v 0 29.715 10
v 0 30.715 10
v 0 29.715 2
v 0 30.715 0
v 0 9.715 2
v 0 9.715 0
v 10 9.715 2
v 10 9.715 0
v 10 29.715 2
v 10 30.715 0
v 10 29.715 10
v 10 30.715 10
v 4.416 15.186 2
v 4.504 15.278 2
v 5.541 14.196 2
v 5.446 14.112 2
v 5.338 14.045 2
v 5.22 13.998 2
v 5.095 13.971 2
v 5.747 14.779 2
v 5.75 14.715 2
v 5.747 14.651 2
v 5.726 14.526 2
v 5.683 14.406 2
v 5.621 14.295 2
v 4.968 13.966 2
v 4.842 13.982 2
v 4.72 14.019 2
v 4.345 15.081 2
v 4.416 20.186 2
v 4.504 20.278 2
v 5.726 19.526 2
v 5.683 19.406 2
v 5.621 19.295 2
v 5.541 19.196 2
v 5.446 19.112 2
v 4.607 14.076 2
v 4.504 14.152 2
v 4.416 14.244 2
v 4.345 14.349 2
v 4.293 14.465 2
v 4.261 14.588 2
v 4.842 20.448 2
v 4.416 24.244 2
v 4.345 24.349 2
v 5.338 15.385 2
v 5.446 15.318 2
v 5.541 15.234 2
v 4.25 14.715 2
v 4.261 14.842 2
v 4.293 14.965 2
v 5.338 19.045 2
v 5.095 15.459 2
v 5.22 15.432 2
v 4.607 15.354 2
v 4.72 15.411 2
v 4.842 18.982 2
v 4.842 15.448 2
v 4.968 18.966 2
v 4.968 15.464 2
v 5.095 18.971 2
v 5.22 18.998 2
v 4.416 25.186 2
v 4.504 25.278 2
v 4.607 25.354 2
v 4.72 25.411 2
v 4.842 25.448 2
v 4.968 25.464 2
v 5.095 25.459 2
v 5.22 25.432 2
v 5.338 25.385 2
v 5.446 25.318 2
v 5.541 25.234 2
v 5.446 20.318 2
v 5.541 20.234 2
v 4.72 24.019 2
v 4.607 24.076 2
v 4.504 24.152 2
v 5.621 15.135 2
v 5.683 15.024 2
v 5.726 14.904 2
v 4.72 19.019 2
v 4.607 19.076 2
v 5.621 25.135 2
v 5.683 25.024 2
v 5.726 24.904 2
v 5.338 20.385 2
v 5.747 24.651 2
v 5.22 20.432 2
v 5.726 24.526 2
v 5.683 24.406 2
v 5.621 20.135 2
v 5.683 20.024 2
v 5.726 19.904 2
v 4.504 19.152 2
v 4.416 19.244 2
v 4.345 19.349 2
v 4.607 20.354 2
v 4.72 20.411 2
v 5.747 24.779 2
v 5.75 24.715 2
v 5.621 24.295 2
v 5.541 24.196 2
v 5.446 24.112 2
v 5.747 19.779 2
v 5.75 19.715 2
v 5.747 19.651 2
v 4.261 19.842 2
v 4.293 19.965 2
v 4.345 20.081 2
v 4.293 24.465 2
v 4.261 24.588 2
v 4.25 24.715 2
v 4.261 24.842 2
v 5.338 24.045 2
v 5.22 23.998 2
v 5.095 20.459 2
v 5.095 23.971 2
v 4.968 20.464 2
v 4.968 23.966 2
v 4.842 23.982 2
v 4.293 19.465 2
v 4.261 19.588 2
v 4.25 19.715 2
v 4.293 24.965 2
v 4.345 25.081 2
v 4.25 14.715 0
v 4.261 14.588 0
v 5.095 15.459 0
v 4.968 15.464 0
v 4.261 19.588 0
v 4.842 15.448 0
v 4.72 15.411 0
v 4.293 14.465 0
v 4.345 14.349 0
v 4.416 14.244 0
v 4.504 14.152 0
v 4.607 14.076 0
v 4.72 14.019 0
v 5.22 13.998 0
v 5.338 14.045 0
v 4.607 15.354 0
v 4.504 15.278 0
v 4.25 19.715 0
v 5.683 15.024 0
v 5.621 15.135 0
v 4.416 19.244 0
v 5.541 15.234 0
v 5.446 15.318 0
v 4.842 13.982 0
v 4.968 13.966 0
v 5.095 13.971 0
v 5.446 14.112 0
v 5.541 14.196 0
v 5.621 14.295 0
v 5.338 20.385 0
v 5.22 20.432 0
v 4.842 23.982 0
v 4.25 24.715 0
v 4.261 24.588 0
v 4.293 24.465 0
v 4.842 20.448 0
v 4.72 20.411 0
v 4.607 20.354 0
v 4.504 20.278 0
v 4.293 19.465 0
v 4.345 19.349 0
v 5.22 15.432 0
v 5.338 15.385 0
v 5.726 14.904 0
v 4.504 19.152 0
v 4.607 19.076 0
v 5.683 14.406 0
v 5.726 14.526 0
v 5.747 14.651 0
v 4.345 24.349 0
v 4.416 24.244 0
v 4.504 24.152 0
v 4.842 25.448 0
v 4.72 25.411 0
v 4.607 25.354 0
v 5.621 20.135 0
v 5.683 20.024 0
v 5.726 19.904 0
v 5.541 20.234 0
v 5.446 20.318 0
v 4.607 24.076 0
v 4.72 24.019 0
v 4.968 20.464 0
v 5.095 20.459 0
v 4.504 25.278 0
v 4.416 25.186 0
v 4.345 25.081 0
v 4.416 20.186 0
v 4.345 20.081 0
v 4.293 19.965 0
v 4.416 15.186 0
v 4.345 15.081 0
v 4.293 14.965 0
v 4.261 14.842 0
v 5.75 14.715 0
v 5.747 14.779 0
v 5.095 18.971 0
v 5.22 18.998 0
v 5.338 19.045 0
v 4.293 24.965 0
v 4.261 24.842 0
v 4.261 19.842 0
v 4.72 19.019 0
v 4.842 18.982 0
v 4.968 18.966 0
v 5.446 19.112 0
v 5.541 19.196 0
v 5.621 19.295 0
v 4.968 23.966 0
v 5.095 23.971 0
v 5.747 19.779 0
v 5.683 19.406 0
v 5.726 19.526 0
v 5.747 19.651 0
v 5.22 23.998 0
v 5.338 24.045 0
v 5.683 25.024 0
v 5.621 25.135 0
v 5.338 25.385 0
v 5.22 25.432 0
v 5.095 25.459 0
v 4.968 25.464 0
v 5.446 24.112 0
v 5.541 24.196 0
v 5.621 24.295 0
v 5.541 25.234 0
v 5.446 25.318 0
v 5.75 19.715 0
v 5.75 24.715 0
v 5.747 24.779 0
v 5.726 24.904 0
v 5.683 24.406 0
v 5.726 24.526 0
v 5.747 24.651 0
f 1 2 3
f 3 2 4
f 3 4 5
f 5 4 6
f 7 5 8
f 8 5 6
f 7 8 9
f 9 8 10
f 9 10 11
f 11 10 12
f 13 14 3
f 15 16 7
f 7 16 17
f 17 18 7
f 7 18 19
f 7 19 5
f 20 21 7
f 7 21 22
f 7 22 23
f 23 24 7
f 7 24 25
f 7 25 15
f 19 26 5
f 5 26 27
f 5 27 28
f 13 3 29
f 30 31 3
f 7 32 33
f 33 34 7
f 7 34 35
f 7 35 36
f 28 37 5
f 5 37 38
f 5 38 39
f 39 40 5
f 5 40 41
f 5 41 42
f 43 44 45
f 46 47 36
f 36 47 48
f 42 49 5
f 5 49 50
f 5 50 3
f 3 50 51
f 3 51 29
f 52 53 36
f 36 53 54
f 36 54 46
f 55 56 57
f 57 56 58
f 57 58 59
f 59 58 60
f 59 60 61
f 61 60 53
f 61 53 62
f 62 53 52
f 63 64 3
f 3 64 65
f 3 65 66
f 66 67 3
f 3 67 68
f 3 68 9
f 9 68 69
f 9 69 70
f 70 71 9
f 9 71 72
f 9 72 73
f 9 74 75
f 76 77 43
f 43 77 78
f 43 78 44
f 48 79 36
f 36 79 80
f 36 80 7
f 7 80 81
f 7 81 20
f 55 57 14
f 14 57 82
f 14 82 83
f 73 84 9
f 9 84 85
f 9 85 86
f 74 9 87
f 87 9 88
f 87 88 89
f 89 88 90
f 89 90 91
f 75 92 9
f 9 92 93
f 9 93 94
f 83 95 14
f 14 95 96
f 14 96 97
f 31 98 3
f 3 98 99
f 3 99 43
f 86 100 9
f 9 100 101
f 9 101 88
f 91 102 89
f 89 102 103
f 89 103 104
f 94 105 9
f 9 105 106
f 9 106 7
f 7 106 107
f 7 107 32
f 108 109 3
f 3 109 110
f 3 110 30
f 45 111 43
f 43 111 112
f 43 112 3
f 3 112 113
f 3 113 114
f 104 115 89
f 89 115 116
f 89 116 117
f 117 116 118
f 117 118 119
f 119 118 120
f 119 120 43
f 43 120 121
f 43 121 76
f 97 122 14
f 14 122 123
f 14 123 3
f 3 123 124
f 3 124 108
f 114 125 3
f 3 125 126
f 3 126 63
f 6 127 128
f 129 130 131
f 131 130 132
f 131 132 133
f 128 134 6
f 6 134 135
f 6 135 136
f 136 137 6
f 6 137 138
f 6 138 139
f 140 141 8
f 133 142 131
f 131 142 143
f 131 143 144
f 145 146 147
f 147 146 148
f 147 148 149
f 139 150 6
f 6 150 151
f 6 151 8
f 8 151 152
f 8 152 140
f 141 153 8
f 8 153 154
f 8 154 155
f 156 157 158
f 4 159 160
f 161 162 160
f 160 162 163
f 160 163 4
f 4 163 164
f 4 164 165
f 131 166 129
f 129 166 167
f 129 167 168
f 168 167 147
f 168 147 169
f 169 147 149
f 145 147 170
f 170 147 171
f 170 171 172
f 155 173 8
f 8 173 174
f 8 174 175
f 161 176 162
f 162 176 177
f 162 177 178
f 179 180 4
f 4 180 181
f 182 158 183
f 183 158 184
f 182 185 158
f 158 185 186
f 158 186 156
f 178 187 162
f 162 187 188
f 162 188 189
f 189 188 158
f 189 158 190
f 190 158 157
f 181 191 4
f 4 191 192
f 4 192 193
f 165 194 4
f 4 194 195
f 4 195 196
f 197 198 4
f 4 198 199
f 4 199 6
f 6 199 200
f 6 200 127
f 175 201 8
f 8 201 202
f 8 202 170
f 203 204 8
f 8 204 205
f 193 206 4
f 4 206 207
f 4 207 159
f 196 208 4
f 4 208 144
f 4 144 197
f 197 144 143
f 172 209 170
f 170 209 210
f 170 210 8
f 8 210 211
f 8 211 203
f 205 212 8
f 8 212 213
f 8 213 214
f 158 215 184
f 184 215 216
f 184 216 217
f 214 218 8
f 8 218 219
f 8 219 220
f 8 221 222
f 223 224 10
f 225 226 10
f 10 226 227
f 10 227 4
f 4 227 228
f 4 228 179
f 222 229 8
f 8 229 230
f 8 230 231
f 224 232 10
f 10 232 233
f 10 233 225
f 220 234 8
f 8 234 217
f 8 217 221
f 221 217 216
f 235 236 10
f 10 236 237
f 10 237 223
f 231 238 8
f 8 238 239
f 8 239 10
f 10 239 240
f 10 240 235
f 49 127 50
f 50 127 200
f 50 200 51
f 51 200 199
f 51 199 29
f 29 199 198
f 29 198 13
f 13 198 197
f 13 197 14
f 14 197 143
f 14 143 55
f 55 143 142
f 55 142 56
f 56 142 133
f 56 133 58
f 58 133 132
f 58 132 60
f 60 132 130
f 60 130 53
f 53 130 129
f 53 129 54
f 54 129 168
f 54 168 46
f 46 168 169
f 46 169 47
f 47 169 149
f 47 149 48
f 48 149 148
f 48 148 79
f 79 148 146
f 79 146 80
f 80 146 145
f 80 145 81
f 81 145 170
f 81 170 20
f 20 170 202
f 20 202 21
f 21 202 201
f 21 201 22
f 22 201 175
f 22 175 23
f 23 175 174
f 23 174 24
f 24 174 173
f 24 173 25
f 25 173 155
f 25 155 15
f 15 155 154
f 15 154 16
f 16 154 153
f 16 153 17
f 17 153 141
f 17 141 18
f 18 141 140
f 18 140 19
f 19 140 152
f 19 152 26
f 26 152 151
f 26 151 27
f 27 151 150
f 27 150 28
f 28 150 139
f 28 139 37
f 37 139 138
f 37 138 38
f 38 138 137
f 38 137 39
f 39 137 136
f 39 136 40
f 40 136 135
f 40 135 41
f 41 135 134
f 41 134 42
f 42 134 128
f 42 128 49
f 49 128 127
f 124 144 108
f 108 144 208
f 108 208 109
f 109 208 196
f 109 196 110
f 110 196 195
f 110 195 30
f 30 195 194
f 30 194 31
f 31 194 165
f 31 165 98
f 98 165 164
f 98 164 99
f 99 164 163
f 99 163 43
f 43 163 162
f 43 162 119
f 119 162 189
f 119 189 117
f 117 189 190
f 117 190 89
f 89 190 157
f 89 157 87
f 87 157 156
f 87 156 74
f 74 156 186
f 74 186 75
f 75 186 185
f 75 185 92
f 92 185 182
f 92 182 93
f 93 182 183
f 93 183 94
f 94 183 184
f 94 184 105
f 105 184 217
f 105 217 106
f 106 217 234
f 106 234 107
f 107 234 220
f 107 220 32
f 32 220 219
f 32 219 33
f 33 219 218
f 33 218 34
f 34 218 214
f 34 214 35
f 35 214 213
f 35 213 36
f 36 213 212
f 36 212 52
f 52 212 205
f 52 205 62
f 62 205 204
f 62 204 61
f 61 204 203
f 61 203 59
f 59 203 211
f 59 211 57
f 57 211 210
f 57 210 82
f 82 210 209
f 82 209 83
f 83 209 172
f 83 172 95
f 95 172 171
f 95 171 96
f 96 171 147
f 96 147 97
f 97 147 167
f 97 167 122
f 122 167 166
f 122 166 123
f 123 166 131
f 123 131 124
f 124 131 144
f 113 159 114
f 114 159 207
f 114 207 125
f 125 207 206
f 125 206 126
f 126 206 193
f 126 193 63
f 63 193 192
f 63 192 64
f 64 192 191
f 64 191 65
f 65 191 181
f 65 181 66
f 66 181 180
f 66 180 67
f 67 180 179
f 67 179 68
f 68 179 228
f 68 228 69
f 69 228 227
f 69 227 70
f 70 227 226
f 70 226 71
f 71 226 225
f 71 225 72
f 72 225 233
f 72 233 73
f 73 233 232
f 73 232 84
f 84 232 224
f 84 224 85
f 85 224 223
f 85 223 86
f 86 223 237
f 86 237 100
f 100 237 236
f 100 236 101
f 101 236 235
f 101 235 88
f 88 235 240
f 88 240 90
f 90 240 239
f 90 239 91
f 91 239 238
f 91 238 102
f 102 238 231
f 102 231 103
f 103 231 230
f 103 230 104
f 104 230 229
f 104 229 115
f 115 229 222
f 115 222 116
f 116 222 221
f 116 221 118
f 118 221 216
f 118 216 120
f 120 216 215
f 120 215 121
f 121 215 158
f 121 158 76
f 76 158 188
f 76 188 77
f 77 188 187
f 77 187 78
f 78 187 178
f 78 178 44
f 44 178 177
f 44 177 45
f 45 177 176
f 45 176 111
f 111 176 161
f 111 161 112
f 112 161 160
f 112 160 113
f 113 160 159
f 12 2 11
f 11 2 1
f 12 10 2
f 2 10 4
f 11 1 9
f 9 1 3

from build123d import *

# Parameters (mm, degrees)
SKETCH1_W           = 10
SKETCH1_H           = 20
BOSS_EXTRUDE1_DEPTH = 2
SKETCH2_R           = 0.75
CUT_EXTRUDE2_DEPTH  = 2
SKETCH5_W           = 10
SKETCH5_H           = 10
BOSS_EXTRUDE2_DEPTH = 1


with BuildPart() as part:
    # Sketch1 → Boss-Extrude1 (new body)
    with BuildSketch(Plane.XY):
        with Locations((5, 19.715051701)):
            Rectangle(SKETCH1_W, SKETCH1_H)
    extrude(amount=BOSS_EXTRUDE1_DEPTH)

    # Sketch2 → Cut-Extrude2 (cut)
    with BuildSketch(Plane.XY):
        with Locations((5, 24.715051701)):
            Circle(SKETCH2_R)
        with Locations((5, 19.715051701)):
            Circle(SKETCH2_R)
        with Locations((5, 14.715051701)):
            Circle(SKETCH2_R)
    extrude(amount=CUT_EXTRUDE2_DEPTH, mode=Mode.SUBTRACT)

    # Sketch5 → Boss-Extrude2 (add)
    with BuildSketch(Plane(origin=(0, 29.715051701, 0), x_dir=(1, 0, 0), z_dir=(0, 1, 0))):
        with Locations((5, -5)):
            Rectangle(SKETCH5_W, SKETCH5_H)
    extrude(amount=BOSS_EXTRUDE2_DEPTH)


solid = part.part
